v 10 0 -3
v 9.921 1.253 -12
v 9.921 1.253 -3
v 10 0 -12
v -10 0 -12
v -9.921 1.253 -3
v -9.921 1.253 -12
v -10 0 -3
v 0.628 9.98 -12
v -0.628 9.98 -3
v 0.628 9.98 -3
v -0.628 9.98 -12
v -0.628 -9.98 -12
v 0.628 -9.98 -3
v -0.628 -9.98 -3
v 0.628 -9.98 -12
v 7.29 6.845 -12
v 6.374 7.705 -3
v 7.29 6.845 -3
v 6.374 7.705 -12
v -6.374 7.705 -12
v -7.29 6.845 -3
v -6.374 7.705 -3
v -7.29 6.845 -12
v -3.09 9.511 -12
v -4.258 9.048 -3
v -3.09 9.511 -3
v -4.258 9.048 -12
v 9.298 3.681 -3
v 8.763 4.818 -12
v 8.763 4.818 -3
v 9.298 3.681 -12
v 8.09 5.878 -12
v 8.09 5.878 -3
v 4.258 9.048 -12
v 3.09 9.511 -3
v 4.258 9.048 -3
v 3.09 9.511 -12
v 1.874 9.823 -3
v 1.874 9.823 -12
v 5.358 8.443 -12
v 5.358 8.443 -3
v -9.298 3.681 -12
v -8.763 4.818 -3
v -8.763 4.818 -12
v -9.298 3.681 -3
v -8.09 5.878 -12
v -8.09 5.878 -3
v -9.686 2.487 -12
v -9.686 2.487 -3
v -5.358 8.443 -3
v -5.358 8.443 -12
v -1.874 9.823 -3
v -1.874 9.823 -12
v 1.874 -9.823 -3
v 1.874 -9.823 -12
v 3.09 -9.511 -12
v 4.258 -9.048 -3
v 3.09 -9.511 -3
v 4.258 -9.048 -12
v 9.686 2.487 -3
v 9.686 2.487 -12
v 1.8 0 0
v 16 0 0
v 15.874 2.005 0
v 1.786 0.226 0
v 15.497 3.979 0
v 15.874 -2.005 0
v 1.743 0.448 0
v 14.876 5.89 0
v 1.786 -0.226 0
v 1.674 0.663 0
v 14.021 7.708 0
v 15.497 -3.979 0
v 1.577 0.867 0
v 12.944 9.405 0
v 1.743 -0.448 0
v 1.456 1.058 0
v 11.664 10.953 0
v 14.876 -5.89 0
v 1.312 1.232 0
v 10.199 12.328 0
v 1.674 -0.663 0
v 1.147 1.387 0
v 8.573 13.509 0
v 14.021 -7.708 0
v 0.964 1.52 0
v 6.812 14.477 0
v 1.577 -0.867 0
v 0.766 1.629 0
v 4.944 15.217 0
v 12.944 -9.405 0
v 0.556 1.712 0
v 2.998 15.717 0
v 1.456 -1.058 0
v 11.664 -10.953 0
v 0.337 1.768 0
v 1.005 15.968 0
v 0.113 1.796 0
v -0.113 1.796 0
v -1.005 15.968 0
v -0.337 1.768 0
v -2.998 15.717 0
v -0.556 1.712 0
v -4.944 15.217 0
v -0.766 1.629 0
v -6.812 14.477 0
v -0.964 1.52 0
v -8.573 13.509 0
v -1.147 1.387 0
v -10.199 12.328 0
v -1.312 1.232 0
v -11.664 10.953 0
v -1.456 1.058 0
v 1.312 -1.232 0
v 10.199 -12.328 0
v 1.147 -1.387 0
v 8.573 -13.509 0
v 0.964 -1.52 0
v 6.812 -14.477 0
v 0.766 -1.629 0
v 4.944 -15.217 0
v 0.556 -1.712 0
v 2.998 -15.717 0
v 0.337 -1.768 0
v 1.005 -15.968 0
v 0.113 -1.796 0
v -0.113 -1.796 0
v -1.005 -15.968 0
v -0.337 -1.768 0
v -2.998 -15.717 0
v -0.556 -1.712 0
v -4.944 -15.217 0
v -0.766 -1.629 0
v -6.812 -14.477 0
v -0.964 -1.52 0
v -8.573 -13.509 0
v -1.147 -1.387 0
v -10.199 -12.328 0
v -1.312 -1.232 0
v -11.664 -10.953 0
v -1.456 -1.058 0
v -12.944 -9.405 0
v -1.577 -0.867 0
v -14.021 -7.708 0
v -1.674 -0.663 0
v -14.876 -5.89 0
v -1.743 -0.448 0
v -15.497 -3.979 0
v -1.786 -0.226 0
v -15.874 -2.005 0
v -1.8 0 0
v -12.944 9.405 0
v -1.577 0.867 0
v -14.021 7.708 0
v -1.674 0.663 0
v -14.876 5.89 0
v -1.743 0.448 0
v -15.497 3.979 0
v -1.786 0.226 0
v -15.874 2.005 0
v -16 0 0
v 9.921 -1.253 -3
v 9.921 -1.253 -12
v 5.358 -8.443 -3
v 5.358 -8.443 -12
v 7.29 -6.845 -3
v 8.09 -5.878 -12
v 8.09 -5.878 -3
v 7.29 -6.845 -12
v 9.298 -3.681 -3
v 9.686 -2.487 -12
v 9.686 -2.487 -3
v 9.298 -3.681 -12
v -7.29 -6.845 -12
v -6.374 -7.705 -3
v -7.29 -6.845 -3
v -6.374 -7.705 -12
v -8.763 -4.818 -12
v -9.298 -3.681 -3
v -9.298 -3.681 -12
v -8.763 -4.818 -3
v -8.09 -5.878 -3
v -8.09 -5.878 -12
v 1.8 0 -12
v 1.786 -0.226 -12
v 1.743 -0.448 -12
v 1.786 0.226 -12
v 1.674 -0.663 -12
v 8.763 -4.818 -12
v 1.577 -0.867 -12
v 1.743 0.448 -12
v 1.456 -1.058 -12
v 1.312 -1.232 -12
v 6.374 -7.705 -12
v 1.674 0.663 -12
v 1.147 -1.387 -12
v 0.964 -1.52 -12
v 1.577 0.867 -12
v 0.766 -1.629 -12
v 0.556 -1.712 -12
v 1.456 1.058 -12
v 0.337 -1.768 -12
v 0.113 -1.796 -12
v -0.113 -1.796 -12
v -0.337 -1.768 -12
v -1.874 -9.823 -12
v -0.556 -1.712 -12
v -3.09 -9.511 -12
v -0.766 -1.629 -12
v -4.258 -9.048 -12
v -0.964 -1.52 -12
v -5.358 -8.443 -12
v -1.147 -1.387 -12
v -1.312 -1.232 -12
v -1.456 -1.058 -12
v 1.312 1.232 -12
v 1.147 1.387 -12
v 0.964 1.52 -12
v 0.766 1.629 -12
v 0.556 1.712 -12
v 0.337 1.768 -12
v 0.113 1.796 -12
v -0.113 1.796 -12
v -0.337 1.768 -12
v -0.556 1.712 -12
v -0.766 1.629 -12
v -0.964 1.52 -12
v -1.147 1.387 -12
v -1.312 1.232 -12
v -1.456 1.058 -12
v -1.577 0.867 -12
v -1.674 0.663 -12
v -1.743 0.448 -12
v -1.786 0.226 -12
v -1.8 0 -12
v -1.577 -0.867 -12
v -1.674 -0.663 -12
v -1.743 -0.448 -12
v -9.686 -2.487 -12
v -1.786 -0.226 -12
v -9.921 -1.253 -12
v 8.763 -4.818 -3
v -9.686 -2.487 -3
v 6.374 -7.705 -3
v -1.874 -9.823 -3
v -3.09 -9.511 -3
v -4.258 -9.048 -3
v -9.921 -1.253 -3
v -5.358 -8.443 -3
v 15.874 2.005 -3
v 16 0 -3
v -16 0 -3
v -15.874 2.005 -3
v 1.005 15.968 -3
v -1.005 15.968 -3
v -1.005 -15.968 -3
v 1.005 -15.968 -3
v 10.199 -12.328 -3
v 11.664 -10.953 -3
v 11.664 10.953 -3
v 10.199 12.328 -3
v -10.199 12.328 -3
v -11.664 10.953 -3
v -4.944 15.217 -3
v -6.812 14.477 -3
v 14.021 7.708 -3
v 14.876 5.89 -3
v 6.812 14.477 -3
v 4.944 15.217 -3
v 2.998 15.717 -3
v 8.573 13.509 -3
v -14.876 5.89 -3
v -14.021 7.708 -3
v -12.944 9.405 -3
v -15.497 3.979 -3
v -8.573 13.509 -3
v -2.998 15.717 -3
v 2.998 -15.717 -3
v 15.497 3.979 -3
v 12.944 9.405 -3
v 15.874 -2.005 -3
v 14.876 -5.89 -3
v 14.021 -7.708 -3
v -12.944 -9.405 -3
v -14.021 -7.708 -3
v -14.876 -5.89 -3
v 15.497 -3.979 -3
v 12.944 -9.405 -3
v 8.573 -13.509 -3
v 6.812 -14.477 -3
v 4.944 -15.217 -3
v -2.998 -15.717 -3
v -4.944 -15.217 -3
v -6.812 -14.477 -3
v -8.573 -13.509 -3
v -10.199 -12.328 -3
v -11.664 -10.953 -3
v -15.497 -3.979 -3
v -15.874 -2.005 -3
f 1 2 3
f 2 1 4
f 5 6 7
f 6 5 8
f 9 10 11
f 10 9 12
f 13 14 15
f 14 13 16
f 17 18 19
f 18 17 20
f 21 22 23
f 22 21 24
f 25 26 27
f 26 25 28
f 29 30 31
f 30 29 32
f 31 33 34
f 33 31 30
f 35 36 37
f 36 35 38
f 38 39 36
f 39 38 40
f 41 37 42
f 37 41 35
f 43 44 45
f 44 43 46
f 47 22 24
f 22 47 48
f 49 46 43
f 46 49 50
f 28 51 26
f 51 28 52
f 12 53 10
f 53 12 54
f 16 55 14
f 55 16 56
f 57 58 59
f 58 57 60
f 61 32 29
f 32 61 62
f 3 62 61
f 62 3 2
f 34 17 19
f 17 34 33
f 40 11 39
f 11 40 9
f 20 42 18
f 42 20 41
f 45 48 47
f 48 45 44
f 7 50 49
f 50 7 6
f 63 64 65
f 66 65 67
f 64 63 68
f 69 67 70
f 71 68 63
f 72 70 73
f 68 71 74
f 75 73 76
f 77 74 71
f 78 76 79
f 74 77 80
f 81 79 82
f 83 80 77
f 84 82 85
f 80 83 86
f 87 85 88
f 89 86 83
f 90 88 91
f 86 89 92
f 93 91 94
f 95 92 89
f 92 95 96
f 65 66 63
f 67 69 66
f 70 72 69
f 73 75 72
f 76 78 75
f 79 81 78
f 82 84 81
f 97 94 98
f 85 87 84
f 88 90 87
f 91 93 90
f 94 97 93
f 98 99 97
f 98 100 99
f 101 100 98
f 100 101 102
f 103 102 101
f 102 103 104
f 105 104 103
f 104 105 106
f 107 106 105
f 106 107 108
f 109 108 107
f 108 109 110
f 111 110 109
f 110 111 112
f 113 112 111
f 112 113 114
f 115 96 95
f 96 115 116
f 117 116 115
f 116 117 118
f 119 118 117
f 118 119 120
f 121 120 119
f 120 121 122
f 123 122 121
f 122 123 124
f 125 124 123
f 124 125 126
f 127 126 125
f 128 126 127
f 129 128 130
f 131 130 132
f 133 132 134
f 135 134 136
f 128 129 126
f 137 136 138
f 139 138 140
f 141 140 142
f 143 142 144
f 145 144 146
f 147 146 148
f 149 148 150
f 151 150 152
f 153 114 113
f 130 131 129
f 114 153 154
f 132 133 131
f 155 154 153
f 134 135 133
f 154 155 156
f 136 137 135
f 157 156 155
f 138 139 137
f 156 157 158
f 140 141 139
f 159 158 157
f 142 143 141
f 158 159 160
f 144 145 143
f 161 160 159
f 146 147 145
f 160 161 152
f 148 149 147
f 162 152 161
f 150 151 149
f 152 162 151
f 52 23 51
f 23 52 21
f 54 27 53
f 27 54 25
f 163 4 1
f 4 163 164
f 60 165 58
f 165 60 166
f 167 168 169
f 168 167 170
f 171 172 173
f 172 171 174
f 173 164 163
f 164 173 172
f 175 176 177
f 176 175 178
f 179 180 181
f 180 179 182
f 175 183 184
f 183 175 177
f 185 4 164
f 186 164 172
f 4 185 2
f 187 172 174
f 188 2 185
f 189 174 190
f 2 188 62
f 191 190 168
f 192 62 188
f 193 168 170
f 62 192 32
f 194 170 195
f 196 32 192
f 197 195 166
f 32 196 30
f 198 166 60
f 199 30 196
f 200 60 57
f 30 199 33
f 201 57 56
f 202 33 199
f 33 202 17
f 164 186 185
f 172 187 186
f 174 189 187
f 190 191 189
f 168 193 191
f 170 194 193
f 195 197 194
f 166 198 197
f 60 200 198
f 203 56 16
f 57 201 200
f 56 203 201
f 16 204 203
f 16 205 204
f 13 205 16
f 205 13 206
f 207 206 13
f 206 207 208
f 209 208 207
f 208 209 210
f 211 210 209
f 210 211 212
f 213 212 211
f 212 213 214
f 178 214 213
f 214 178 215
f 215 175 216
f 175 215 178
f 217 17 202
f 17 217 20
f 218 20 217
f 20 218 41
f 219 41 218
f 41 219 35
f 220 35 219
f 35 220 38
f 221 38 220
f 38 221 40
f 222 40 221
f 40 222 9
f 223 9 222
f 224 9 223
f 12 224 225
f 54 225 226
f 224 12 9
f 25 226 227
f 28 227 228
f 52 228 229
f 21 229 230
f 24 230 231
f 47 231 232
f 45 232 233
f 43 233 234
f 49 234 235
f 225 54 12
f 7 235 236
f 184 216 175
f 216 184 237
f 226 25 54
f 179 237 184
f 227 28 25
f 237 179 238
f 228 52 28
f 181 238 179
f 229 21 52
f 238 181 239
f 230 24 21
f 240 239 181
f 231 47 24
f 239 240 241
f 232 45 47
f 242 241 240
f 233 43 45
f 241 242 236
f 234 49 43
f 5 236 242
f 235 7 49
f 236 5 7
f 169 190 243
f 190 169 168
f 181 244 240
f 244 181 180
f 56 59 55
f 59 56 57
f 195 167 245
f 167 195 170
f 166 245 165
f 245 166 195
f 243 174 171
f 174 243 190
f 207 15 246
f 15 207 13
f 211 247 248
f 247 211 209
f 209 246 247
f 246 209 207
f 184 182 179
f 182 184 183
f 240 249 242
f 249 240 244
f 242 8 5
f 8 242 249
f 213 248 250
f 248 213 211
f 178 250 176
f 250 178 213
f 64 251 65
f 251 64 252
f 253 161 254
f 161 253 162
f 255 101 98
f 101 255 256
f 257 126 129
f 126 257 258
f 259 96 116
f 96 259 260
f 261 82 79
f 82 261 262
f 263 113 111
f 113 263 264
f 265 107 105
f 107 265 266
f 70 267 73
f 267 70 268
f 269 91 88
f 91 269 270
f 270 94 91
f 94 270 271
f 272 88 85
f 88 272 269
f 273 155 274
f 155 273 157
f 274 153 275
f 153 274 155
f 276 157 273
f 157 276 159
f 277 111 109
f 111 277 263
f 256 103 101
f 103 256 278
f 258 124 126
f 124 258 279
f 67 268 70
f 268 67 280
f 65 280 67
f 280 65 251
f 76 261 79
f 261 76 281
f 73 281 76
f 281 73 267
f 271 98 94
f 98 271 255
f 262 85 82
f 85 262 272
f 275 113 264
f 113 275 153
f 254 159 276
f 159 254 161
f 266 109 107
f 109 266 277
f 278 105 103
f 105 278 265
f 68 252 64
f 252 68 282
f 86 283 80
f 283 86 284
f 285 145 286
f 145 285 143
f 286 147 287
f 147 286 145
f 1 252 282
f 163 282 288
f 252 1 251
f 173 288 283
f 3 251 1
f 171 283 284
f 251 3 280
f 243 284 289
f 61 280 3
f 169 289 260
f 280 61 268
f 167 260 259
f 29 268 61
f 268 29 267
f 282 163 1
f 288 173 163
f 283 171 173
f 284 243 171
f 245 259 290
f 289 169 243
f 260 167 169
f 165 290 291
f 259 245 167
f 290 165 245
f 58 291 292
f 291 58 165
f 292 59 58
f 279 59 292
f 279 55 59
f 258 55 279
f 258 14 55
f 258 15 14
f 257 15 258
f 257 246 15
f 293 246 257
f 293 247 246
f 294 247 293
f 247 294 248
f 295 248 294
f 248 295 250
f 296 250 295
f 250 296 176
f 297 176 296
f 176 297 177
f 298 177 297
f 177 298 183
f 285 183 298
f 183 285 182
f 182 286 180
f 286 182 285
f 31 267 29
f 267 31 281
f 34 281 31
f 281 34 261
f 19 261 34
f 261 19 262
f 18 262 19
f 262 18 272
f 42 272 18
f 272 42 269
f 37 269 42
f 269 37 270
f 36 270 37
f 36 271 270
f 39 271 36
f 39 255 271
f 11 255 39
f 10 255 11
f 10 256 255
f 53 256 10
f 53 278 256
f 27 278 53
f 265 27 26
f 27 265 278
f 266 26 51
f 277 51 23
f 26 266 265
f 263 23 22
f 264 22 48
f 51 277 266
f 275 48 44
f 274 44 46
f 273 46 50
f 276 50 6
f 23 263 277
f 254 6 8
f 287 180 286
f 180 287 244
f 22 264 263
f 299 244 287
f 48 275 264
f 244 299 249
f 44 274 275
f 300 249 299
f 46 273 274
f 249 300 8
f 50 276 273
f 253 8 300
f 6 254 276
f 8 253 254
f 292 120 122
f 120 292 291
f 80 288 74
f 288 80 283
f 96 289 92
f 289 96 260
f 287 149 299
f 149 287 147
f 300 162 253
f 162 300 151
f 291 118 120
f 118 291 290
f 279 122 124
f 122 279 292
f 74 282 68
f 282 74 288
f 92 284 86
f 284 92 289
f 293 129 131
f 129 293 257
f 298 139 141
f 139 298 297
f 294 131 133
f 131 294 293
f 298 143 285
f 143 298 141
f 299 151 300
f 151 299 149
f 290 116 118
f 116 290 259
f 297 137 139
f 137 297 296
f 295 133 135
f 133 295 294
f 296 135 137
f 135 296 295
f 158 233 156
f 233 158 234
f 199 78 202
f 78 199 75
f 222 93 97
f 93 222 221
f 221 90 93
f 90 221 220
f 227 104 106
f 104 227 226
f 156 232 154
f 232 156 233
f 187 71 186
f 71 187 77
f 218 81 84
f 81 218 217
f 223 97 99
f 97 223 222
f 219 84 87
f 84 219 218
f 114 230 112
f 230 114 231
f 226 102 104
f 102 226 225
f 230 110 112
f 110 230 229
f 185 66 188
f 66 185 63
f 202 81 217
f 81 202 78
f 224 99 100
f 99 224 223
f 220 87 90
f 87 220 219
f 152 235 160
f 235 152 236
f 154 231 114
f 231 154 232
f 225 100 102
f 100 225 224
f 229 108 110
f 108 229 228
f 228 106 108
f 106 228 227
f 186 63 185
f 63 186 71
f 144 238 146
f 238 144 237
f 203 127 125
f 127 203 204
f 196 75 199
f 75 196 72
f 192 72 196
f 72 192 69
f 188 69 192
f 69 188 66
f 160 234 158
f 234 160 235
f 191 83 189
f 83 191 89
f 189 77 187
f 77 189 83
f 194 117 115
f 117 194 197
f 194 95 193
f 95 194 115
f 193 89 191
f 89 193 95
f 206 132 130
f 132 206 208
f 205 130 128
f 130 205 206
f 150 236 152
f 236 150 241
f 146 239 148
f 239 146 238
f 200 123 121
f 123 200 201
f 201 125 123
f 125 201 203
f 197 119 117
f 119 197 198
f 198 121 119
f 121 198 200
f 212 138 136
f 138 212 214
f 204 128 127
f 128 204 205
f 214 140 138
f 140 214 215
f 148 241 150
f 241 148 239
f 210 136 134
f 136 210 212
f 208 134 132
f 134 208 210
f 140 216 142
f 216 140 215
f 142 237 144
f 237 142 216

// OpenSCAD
$fn = 50;


difference() {
	union() {
		translate(v = [0, 0, -12.0000000000]) {
			cylinder(h = 12, r = 10.0000000000);
		}
		translate(v = [0, 0, -3.0000000000]) {
			cylinder(h = 3, r = 16.0000000000);
		}
	}
	union() {
		#translate(v = [0, 0, -12]) {
			cylinder(h = 12, r = 1.8000000000);
		}
	}
}
